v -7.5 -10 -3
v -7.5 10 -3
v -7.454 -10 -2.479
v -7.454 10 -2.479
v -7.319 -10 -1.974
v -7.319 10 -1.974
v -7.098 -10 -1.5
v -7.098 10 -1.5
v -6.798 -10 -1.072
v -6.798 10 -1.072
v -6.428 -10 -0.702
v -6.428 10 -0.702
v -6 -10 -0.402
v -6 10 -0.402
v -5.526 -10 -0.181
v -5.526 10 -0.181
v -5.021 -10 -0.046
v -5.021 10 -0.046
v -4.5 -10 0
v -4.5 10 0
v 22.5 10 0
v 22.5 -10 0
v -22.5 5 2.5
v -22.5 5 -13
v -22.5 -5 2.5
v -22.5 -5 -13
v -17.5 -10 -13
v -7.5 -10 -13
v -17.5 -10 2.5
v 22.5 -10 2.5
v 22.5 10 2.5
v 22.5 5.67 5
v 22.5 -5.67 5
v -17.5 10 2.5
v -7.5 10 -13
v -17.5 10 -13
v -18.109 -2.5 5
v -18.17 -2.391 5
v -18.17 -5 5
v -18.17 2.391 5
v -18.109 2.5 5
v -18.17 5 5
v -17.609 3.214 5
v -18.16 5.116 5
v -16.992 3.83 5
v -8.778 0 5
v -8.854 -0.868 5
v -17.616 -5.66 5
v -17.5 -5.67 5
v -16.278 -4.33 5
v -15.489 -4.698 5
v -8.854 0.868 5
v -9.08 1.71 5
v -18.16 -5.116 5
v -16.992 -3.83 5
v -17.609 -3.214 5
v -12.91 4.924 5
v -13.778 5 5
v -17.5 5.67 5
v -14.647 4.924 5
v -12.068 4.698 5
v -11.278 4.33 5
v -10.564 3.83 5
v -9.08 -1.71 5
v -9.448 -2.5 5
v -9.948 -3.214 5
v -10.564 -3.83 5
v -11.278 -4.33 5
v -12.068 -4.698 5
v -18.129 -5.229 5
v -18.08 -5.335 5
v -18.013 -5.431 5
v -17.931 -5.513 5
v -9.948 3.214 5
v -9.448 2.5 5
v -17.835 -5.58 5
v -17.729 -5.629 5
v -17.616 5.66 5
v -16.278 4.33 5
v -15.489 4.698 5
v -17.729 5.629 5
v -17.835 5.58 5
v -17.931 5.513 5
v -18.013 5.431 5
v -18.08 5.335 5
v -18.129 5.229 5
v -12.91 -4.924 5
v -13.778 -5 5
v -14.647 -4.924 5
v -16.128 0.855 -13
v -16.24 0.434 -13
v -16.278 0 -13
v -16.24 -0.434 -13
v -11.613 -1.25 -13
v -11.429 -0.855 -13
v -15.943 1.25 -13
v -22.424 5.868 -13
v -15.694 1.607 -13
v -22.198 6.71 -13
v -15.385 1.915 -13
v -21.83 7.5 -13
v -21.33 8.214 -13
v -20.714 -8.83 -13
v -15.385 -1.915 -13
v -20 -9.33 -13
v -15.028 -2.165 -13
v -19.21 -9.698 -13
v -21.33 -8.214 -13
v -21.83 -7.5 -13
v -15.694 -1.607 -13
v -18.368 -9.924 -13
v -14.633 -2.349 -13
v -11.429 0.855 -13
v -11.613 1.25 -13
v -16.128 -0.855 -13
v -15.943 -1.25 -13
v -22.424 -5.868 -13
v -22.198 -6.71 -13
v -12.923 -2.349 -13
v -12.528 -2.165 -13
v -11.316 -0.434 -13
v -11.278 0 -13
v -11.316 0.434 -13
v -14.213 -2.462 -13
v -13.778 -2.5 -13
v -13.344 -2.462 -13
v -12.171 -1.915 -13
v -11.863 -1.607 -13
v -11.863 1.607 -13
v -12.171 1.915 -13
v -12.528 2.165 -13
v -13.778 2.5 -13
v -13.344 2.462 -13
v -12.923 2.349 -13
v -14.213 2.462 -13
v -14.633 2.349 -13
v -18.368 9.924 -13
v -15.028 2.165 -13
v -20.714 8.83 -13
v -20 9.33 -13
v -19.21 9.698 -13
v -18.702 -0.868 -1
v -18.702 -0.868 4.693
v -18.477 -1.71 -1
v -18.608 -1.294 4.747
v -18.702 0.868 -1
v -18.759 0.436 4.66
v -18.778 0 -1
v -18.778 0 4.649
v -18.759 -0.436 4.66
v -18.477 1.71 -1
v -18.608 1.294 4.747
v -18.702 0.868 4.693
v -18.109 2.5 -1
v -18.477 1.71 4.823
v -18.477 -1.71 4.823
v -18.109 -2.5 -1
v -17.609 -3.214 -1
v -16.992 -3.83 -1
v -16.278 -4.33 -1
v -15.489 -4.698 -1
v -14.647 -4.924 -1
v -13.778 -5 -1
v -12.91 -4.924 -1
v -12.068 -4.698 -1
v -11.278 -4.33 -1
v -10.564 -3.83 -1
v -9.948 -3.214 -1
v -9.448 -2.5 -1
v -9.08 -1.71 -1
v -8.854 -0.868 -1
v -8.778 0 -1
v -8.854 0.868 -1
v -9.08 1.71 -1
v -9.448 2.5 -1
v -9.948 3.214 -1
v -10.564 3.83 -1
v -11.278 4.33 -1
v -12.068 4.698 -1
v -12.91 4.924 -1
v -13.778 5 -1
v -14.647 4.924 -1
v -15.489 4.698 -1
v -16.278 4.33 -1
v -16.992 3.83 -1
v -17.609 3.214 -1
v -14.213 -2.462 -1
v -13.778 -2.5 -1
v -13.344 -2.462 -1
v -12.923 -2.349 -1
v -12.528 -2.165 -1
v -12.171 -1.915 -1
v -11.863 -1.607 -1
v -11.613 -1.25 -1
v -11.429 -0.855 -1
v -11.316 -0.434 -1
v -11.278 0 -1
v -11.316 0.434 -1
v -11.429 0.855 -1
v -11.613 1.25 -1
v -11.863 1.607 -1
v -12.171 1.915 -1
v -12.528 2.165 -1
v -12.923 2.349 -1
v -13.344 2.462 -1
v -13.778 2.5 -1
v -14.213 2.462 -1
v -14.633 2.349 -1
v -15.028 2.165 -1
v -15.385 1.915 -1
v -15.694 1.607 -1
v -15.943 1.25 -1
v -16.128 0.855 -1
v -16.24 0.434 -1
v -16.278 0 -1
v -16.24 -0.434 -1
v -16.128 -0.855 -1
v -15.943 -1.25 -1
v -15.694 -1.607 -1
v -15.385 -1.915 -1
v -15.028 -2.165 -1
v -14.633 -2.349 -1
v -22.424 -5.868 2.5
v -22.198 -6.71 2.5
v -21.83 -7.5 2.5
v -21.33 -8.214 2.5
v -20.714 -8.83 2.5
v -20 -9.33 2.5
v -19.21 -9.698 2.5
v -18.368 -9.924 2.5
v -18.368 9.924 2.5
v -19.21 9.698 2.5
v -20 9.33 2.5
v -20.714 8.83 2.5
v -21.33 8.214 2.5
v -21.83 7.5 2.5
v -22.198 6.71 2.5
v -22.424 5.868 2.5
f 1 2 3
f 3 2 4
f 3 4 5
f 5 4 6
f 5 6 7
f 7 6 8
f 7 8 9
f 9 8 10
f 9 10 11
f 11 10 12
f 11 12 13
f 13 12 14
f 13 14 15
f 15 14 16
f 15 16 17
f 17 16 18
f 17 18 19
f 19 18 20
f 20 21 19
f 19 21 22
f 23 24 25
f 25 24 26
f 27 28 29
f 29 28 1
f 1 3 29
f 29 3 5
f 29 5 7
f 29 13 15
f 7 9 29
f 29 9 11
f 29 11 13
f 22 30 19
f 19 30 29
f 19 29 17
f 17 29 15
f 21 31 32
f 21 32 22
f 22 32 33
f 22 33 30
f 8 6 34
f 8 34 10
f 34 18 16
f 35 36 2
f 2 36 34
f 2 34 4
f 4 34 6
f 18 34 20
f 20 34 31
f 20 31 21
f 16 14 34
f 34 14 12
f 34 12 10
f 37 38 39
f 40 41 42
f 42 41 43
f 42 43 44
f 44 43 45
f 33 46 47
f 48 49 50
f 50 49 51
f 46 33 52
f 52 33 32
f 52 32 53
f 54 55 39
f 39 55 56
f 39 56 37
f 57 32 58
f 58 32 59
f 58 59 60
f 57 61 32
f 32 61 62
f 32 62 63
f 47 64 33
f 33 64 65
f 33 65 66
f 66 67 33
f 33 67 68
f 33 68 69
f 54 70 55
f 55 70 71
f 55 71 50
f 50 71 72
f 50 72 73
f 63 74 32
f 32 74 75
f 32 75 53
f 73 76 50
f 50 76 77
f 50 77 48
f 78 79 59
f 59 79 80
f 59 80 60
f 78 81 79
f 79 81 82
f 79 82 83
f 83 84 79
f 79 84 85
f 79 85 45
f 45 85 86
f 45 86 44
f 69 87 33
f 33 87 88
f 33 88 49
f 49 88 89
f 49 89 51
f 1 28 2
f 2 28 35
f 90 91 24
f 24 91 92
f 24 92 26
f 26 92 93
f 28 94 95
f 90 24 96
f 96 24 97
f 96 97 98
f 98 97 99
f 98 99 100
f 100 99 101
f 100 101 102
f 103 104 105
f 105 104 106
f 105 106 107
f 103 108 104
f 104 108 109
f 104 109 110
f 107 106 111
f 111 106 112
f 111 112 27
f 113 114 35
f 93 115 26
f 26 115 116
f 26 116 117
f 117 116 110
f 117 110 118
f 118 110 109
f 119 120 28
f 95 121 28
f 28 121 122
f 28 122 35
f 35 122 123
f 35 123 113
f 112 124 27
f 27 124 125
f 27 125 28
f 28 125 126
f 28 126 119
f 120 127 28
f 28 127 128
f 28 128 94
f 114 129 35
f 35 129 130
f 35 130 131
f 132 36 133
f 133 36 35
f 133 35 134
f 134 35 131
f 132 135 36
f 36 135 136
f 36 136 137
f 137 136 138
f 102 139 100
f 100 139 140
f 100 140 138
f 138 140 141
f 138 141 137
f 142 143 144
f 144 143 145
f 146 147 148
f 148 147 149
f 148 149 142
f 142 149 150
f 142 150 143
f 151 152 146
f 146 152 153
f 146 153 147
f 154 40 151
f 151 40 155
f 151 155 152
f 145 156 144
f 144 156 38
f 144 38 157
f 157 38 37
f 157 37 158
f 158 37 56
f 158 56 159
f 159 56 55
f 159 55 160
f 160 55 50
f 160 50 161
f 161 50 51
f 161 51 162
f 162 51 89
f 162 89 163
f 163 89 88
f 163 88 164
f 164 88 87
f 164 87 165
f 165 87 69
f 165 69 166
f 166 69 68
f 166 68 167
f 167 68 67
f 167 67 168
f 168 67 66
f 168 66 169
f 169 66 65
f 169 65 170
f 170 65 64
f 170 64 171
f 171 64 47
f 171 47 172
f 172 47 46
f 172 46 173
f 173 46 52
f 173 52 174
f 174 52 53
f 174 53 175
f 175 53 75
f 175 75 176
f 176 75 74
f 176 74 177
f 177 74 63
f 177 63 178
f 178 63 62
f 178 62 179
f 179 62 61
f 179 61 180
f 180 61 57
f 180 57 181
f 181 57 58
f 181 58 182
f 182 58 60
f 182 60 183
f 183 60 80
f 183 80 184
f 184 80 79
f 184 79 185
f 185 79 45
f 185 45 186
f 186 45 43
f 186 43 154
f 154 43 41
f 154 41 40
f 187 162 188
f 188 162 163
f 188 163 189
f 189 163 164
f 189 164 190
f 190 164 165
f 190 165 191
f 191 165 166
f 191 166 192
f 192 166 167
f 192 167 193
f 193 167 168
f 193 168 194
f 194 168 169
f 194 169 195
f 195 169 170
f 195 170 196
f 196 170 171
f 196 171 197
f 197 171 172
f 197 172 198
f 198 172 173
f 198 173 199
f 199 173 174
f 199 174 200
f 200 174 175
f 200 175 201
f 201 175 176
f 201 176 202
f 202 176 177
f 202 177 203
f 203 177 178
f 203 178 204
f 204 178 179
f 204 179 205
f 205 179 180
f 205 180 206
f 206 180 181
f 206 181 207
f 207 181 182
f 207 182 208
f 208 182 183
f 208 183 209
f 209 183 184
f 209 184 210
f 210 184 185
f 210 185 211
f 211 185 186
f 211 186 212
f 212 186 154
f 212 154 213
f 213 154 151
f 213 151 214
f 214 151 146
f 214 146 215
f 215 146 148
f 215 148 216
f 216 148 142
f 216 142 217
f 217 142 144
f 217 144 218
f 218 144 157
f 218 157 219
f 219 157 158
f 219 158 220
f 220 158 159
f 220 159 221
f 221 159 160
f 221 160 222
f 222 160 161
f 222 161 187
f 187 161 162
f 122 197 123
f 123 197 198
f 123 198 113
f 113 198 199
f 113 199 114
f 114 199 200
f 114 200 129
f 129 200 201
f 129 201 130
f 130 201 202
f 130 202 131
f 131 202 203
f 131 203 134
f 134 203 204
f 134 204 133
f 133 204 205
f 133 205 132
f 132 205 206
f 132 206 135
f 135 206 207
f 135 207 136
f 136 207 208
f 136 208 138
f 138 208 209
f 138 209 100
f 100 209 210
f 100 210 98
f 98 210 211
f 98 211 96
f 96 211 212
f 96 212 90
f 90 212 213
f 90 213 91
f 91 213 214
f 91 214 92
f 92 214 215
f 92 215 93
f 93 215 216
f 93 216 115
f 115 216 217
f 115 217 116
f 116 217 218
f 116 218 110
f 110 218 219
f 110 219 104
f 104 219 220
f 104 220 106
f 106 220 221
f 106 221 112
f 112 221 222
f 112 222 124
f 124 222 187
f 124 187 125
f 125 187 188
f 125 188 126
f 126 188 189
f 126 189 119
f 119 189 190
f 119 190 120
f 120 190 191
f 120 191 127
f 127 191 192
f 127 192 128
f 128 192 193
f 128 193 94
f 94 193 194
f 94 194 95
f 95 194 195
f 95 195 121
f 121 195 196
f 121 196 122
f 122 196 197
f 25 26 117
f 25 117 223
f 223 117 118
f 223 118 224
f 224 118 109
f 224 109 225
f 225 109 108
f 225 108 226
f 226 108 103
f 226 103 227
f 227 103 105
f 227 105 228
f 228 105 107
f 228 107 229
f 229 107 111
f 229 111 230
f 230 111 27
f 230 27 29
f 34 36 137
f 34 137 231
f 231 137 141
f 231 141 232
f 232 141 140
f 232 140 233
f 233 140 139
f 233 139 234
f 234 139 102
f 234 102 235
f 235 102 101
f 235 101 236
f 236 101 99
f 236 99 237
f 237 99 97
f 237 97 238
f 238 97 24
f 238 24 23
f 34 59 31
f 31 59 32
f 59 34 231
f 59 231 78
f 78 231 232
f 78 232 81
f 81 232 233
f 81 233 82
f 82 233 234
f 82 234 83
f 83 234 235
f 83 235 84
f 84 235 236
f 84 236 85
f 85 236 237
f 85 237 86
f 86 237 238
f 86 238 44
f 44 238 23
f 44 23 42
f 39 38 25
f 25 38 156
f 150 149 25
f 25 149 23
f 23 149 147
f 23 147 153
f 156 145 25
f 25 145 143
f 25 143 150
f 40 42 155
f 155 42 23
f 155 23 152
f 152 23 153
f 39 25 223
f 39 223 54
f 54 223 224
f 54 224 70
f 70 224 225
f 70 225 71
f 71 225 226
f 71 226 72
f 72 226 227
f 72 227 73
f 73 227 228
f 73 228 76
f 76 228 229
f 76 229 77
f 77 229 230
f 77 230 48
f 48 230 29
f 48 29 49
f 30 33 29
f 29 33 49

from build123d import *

# Parameters (mm, degrees)
SKETCH1_W       = 45
SKETCH1_H       = 20
EXTRUDE1_DEPTH  = 5
SKETCH2_W       = 15
SKETCH2_H       = 20
EXTRUDE2_DEPTH  = 13
SKETCH3_R       = 5
EXTRUDE3_DEPTH  = 6
SKETCH4_R       = 2.5
EXTRUDE4_DEPTH  = 16
FILLET1_R       = 5
CHAMFER1_SIZE   = 4.330127019
CHAMFER1_SIZE_2 = 2.5
FILLET2_R       = 3


with BuildPart() as part:
    # Sketch1 → Extrude1 (new body)
    with BuildSketch(Plane.XY):
        Rectangle(SKETCH1_W, SKETCH1_H)
    extrude(amount=EXTRUDE1_DEPTH)

    # Sketch2 → Extrude2 (add)
    with BuildSketch(Plane(origin=(0, 0, 0), x_dir=(-1, 0, 0), z_dir=(0, 0, -1))):
        with Locations((15, 0)):
            Rectangle(SKETCH2_W, SKETCH2_H)
    extrude(amount=EXTRUDE2_DEPTH)

    # Sketch3 → Extrude3 (cut)
    with BuildSketch(Plane.XY.offset(5)):
        with Locations((-13.77840955, 0)):
            Circle(SKETCH3_R)
    extrude(amount=-EXTRUDE3_DEPTH, mode=Mode.SUBTRACT)

    # Sketch4 → Extrude4 (cut)
    with BuildSketch(Plane.XY.offset(-1)):
        with Locations((-13.77840955, 0)):
            Circle(SKETCH4_R)
    extrude(amount=-EXTRUDE4_DEPTH, mode=Mode.SUBTRACT)

    # Fillet1
    fillet1_edges = [part.edges().sort_by_distance(p)[0] for p in [
        (-22.5, 10, -4),
        (-22.5, -10, -4),
    ]]
    fillet(fillet1_edges, radius=FILLET1_R)

    # Chamfer1
    # the kernel refuses this chamfer: 4.330127019, 2.5 mm, written as the material it takes off along each edge
    with BuildSketch(Plane(origin=(-17.5, 10, 5), x_dir=(0, -0.999813220622208, 0.01932676561270069), z_dir=(1, 0, 0))) as chamfer1_piece_1:
        Polygon((CHAMFER1_SIZE * 0.999813220604, CHAMFER1_SIZE * 0.0193267656124), (-CHAMFER1_SIZE_2 * 0.0193267656127, CHAMFER1_SIZE_2 * 0.999813220622), (0, 0), align=None)
    extrude(amount=51.202409926, mode=Mode.SUBTRACT)
    with BuildSketch(Plane(origin=(33.702409926, -10, 5), x_dir=(0, -0.05789386240267114, -0.9983227437537926), z_dir=(-1, 0, 0))) as chamfer1_piece_2:
        Polygon((CHAMFER1_SIZE_2 * 0.998322743754, -CHAMFER1_SIZE_2 * 0.0578938624027), (-CHAMFER1_SIZE * 0.0578938624016, -CHAMFER1_SIZE * 0.998322743736), (0, 0), align=None)
    extrude(amount=51.202409926, mode=Mode.SUBTRACT)
    with BuildSketch(Plane(origin=(-22.5, -5, 5), x_dir=(0.999813220622208, 0, 0.01932676561270069), z_dir=(0, 1, 0))) as chamfer1_piece_3:
        Polygon((CHAMFER1_SIZE * 0.999813220604, CHAMFER1_SIZE * 0.0193267656124), (-CHAMFER1_SIZE_2 * 0.0193267656127, CHAMFER1_SIZE_2 * 0.999813220622), (0, 0), align=None)
    extrude(amount=10, mode=Mode.SUBTRACT)
    with BuildSketch(Plane(origin=(-17.5, 5, 5), x_dir=(-1, 0, 0), z_dir=(0, -1, 0))) as chamfer1_piece_4:
        Polygon((5 - CHAMFER1_SIZE, 0), (5, CHAMFER1_SIZE_2), (5, 0), align=None)
    revolve(axis=Axis((-17.5, 5, 5), (0, 0, -1)), revolution_arc=90, mode=Mode.SUBTRACT)
    with BuildSketch(Plane(origin=(-17.5, -5, 5), x_dir=(0, -1, 0), z_dir=(1, 0, 0))) as chamfer1_piece_5:
        Polygon((5 - CHAMFER1_SIZE, 0), (5, CHAMFER1_SIZE_2), (5, 0), align=None)
    revolve(axis=Axis((-17.5, -5, 5), (0, 0, -1)), revolution_arc=90, mode=Mode.SUBTRACT)

    # Fillet2
    fillet2_edges = [part.edges().sort_by_distance(p)[0] for p in [
        (-7.5, 0, 0),
    ]]
    fillet(fillet2_edges, radius=FILLET2_R)


solid = part.part
